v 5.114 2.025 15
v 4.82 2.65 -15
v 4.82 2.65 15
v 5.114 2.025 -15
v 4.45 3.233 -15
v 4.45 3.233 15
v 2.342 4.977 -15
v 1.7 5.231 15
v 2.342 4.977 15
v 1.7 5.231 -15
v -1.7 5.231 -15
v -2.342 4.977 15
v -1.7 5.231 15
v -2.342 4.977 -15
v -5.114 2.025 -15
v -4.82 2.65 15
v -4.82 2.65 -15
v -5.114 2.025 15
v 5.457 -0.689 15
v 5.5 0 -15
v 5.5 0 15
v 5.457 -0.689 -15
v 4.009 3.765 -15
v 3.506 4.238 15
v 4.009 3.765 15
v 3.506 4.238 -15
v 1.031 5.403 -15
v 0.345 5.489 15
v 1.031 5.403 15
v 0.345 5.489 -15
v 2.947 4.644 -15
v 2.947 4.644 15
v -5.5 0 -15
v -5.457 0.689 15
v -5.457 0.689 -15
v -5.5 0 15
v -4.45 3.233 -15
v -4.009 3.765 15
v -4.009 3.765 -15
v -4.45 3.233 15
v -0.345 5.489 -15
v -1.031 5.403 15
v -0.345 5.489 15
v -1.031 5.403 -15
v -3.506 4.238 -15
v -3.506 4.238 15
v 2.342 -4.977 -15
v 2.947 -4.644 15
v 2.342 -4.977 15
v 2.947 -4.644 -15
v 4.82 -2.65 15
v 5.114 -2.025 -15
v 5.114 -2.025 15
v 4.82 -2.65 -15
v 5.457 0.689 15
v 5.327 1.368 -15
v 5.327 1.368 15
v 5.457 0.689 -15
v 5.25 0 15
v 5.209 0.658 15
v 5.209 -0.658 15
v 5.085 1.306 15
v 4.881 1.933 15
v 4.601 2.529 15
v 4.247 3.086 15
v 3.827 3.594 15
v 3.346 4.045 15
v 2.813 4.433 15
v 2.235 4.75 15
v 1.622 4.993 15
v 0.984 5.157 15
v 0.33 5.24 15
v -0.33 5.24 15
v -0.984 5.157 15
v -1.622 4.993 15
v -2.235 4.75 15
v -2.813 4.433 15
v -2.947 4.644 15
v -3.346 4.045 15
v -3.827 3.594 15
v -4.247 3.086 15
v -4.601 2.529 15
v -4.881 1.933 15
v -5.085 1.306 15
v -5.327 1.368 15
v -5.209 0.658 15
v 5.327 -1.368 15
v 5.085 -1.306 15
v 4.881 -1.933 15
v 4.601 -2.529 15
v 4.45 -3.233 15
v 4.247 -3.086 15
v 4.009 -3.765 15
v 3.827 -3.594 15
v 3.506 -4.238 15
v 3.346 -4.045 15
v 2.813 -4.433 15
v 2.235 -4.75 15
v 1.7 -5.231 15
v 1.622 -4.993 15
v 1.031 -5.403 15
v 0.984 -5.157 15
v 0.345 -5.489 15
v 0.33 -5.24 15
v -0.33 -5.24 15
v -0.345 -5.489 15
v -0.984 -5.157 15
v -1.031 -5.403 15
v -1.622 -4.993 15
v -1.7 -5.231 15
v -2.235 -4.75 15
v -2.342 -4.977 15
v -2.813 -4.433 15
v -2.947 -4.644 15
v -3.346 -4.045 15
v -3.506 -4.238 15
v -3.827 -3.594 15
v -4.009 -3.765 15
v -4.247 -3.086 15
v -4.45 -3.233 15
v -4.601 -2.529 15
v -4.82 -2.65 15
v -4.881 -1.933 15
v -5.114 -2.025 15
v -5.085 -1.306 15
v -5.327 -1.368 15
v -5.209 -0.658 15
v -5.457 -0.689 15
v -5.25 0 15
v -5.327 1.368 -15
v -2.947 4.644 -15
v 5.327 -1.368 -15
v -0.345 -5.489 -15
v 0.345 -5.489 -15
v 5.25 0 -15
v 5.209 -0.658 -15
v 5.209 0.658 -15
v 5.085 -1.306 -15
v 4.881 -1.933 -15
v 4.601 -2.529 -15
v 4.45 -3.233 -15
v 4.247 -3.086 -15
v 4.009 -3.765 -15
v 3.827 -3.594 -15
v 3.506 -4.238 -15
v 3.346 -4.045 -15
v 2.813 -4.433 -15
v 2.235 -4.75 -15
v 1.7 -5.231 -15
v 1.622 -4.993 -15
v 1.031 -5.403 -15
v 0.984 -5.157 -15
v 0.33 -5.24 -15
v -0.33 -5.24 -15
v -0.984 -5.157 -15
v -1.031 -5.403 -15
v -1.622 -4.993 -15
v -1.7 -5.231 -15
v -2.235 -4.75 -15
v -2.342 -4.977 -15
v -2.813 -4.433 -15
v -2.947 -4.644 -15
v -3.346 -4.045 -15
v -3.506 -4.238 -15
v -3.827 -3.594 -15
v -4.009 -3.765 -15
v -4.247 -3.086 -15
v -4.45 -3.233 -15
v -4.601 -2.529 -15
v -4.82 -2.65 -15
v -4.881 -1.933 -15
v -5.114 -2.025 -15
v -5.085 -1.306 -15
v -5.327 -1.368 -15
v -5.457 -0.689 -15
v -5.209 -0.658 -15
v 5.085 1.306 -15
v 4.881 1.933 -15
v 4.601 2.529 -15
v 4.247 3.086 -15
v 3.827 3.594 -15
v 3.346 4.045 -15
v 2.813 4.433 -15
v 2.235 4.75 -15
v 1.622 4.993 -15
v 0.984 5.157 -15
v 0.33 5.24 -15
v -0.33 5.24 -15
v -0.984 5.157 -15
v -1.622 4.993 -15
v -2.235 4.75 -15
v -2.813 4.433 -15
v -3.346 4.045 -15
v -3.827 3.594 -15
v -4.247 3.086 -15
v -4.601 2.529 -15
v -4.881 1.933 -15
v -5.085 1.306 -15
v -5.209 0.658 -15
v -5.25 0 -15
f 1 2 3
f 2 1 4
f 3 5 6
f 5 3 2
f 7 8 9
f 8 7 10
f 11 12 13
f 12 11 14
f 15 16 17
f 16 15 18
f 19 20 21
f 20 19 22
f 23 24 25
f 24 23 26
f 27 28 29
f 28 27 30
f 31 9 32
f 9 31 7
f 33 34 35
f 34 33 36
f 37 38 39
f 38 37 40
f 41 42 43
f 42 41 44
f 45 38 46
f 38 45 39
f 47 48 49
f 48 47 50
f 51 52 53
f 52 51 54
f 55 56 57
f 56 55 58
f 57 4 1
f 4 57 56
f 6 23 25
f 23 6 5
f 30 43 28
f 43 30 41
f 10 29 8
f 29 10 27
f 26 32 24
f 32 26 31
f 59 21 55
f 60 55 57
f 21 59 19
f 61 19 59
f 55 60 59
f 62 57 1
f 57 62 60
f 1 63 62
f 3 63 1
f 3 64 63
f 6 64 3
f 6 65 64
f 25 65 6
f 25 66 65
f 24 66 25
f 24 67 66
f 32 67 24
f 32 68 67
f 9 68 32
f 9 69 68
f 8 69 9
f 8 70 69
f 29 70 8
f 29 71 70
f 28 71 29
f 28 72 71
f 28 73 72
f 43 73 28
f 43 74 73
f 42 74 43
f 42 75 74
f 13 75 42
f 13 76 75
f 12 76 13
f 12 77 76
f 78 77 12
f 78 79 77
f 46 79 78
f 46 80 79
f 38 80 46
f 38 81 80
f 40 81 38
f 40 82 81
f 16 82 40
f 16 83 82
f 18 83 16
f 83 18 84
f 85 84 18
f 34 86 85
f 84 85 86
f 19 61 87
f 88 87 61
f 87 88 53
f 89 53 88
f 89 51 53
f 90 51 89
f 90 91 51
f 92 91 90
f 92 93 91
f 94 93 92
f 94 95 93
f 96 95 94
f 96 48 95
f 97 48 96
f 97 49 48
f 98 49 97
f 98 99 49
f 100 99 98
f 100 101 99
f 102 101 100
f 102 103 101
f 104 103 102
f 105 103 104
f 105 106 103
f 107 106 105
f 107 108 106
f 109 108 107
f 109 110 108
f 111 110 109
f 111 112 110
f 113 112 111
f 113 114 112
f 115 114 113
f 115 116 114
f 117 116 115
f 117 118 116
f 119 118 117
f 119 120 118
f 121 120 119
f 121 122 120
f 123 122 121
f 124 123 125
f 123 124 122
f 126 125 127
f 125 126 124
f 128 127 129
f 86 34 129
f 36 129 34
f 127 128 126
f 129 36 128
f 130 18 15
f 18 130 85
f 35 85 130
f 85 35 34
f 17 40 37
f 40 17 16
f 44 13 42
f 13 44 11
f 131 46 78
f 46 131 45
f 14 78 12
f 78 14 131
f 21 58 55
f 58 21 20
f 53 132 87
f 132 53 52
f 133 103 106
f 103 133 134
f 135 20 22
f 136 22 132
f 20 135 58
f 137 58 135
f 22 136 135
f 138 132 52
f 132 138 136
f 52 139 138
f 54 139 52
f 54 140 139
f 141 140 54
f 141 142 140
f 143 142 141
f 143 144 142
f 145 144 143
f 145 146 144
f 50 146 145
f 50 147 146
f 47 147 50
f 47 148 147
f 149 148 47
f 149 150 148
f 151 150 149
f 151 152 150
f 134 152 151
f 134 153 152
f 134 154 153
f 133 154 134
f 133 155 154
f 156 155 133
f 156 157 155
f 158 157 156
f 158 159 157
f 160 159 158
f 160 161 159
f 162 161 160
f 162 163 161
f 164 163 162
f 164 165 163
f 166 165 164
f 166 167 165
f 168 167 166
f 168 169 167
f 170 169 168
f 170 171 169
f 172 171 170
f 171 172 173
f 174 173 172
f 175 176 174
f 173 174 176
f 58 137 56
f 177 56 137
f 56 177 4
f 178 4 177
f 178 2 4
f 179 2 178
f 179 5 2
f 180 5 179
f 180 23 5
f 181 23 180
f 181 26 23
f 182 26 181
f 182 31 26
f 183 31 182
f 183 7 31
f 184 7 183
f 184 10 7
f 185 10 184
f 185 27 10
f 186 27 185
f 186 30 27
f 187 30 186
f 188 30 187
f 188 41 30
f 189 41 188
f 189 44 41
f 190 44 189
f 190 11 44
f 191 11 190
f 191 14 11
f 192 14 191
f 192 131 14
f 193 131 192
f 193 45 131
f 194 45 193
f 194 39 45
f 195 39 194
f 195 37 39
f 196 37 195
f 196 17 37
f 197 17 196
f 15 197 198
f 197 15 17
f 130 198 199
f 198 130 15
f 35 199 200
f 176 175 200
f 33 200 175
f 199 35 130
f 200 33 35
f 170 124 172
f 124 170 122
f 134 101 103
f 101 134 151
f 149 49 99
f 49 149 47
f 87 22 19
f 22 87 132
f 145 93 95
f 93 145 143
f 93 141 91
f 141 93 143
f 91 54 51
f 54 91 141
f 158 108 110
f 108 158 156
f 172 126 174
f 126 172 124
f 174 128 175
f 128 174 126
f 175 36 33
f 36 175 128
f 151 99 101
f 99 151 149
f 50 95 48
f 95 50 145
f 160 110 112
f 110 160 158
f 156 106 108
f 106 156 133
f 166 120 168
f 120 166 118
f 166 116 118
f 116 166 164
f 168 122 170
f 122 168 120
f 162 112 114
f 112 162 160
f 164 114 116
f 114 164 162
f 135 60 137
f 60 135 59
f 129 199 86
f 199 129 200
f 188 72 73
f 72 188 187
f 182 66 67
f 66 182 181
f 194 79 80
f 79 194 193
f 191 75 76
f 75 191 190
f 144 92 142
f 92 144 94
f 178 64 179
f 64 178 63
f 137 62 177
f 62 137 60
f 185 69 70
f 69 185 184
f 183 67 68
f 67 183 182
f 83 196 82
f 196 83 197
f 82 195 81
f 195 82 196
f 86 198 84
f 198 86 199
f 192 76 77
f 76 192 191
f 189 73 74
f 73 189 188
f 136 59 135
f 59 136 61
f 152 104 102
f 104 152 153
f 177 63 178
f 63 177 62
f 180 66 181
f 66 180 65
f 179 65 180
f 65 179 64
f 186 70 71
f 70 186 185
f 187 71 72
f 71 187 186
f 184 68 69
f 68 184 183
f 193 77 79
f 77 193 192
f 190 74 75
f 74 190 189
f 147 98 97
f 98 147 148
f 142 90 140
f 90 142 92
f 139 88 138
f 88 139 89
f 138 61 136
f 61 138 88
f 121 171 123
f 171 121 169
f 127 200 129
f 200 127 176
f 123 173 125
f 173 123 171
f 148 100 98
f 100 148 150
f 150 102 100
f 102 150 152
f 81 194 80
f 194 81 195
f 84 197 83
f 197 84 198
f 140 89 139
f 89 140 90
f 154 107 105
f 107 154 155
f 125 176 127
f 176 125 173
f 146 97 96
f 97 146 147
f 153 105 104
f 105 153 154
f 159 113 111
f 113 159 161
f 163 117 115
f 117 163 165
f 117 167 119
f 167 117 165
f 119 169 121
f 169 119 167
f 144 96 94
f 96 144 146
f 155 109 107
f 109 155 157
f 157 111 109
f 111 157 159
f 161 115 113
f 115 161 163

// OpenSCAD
$fn = 50;


difference() {
	union() {
		translate(v = [0, 0, -15.0000000000]) {
			cylinder(h = 30, r = 5.5000000000);
		}
	}
	union() {
		translate(v = [0, 0, -100.0000000000]) {
			cylinder(h = 200, r = 5.2500000000);
		}
	}
}
